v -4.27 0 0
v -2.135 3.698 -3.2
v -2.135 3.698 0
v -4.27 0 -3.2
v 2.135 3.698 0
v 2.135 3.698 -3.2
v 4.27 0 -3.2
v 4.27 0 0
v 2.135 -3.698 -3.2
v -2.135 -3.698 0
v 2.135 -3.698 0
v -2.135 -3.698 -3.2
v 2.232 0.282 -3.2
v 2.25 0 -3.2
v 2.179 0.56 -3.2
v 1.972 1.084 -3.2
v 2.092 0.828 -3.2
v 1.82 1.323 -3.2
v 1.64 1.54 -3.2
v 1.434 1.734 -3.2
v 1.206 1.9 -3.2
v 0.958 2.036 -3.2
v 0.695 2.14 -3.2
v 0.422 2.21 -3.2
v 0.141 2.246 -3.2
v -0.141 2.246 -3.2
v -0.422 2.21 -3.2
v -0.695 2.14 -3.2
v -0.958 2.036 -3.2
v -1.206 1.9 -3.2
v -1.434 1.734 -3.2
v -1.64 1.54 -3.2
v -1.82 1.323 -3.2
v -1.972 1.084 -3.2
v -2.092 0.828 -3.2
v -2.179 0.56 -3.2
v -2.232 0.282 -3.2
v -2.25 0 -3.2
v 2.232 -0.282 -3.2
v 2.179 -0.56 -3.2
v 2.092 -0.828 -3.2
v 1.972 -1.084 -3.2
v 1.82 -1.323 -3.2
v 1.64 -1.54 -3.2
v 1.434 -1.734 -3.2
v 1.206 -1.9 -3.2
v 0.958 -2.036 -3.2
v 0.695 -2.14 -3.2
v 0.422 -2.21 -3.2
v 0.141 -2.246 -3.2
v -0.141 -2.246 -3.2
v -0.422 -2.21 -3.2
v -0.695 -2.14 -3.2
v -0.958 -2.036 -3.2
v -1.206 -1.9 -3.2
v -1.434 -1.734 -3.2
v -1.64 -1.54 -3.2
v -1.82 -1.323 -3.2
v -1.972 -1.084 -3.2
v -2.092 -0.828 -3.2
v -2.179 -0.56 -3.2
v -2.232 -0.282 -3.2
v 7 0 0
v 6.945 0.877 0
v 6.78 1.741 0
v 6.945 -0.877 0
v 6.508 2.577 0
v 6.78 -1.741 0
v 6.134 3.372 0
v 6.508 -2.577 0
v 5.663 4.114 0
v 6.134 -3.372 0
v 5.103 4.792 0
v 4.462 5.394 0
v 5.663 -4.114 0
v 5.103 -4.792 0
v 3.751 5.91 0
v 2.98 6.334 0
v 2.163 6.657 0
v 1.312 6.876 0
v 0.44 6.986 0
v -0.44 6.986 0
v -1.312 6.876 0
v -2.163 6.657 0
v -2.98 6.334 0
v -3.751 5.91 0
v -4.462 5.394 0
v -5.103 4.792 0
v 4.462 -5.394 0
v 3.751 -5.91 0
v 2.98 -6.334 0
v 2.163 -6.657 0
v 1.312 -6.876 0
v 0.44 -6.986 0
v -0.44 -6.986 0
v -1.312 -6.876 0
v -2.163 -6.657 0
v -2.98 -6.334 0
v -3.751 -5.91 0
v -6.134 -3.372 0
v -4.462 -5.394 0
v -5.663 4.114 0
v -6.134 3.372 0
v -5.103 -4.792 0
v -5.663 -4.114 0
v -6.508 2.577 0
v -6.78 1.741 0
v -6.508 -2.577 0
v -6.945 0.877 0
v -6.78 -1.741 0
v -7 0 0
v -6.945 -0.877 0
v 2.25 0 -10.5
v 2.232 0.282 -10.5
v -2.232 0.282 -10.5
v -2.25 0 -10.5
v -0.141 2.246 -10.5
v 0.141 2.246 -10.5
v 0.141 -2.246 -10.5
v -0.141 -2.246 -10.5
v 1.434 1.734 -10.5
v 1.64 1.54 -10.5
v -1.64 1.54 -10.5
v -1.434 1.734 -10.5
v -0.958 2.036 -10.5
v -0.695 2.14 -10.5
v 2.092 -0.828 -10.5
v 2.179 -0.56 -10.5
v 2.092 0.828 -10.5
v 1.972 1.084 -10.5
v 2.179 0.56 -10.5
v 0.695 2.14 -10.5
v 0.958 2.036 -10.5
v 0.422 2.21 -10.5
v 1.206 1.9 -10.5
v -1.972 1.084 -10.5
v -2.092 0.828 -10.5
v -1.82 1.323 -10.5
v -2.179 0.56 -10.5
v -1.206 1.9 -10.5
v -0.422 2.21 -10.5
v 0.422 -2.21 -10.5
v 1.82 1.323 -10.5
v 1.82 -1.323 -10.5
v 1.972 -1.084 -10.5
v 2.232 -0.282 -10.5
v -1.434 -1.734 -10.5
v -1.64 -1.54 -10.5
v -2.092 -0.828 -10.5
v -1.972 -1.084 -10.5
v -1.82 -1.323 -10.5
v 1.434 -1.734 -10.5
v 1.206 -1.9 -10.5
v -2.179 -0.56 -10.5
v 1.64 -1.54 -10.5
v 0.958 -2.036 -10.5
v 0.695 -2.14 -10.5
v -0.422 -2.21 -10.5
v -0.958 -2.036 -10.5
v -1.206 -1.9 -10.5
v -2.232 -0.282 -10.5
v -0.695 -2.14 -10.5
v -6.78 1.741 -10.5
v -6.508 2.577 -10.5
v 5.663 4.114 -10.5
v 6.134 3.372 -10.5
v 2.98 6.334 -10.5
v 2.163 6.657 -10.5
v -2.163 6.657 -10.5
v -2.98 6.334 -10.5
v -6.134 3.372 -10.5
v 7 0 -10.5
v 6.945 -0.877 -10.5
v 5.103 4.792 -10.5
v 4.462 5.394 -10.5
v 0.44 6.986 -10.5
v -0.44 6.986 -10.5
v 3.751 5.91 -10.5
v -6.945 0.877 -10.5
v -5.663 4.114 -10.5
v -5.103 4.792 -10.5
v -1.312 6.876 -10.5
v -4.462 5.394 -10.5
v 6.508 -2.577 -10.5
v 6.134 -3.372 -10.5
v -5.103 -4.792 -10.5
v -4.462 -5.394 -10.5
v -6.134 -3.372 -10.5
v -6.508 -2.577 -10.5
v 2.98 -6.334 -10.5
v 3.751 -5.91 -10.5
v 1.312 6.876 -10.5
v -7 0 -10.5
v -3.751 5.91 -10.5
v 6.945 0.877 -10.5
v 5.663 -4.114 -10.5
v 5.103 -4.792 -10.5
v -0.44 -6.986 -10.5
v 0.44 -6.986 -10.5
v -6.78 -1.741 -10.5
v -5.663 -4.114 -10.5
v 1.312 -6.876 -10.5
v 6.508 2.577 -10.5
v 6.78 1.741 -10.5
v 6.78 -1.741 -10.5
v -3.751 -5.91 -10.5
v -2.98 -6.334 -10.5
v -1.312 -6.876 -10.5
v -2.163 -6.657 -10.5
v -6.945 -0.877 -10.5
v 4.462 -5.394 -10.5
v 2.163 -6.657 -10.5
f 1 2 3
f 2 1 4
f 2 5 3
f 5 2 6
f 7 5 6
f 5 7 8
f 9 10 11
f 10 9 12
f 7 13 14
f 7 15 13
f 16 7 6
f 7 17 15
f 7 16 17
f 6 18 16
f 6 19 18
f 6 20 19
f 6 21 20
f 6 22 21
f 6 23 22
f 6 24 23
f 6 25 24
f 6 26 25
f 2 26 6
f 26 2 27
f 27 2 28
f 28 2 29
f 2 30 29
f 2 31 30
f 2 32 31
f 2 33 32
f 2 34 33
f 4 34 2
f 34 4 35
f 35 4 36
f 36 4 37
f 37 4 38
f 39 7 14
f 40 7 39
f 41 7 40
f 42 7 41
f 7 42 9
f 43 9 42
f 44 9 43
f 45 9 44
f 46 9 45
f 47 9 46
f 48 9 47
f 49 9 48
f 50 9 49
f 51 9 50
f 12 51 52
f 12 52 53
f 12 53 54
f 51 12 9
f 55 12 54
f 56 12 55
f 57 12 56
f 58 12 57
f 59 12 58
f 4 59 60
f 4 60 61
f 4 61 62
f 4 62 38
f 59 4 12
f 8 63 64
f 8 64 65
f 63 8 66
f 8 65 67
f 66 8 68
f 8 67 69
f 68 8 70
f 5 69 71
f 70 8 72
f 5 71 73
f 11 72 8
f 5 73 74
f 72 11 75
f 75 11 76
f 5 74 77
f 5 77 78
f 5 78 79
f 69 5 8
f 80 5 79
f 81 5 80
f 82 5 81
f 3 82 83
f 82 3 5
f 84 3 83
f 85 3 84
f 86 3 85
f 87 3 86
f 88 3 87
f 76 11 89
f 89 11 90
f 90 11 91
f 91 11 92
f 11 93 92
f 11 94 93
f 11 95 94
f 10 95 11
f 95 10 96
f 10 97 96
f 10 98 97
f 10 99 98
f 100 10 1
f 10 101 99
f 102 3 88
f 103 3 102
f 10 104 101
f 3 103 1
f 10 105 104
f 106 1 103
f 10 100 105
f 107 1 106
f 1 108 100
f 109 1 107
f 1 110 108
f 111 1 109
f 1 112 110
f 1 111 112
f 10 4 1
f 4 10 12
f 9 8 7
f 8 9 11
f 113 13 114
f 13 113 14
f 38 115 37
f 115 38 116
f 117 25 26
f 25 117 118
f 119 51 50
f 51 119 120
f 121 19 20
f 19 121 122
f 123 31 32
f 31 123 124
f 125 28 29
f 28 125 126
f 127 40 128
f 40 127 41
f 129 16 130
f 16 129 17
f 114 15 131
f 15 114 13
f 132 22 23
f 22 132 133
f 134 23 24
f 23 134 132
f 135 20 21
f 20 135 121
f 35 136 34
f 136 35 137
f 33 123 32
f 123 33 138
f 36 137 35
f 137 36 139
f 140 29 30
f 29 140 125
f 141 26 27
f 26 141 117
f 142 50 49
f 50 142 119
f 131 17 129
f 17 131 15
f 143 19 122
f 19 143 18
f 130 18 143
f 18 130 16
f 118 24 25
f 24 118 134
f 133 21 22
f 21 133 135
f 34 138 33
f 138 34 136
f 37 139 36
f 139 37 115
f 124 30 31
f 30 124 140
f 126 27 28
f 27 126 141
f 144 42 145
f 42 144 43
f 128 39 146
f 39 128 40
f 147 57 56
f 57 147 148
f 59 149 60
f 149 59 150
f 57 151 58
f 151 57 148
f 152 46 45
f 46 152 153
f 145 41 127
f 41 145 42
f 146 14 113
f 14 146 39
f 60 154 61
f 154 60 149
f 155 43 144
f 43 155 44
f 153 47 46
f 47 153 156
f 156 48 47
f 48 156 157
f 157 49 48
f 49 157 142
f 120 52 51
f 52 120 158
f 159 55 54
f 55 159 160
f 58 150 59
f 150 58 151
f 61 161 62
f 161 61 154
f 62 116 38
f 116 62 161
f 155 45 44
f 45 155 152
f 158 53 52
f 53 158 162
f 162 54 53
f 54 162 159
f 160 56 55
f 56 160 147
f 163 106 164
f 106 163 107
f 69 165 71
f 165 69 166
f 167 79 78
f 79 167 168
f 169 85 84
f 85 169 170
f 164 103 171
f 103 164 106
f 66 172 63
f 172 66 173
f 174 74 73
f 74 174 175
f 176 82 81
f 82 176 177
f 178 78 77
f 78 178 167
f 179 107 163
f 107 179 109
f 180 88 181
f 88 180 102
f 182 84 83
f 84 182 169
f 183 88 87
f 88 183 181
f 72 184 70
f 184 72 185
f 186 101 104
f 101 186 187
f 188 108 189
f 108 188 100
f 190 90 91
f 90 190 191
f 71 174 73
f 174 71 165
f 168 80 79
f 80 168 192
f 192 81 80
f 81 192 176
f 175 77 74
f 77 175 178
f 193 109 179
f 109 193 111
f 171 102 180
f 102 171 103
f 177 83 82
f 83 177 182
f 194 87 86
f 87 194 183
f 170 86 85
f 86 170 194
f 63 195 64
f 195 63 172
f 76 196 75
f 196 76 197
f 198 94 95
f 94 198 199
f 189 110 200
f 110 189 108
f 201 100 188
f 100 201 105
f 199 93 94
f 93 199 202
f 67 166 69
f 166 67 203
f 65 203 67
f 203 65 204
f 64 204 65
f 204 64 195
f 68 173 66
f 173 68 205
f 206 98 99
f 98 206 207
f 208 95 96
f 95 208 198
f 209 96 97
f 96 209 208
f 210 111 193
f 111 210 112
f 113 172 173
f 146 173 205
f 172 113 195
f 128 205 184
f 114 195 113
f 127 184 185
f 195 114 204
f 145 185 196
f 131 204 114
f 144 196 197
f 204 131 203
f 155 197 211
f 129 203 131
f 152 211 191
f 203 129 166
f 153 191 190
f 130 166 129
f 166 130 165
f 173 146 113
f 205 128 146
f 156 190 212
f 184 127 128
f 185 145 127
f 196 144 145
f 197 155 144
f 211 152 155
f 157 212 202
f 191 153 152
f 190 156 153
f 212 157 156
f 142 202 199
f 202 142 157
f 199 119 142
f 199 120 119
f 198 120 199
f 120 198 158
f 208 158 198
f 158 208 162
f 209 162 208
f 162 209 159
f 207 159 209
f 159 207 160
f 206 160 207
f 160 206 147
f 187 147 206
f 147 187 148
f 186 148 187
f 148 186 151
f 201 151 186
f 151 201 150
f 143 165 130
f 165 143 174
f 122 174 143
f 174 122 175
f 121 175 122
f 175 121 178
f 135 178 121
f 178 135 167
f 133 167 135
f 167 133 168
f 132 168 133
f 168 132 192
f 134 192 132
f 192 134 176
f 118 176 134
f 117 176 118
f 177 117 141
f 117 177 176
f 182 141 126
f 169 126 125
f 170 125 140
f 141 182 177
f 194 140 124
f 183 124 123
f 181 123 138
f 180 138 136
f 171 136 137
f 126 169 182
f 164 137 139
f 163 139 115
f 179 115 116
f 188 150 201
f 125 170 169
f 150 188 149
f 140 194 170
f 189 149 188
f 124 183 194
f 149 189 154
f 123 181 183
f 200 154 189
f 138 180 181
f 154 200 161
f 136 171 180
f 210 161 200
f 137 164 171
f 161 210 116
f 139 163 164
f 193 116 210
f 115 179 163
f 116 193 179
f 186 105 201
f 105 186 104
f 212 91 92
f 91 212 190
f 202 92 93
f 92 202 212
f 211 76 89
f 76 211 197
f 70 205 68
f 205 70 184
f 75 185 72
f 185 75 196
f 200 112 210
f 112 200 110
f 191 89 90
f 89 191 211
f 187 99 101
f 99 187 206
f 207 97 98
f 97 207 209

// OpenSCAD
$fn = 50;


difference() {
	union() {
		translate(v = [0, 0, -10.5000000000]) {
			cylinder(h = 10.5000000000, r = 7.0000000000);
		}
	}
	union() {
		translate(v = [0, 0, 0]) {
			rotate(a = [0, 0, 0]) {
				difference() {
					union() {
						translate(v = [0, 0, -3.2000000000]) {
							#linear_extrude(height = 3.2000000000) {
								polygon(points = [[4.2698000000, 0.0000000000], [2.1349000000, 3.6977552691], [-2.1349000000, 3.6977552691], [-4.2698000000, 0.0000000000], [-2.1349000000, -3.6977552691], [2.1349000000, -3.6977552691]]);
							}
						}
					}
					union();
				}
			}
		}
		#translate(v = [0, 0, -100.0000000000]) {
			cylinder(h = 200, r = 2.2500000000);
		}
	}
}
